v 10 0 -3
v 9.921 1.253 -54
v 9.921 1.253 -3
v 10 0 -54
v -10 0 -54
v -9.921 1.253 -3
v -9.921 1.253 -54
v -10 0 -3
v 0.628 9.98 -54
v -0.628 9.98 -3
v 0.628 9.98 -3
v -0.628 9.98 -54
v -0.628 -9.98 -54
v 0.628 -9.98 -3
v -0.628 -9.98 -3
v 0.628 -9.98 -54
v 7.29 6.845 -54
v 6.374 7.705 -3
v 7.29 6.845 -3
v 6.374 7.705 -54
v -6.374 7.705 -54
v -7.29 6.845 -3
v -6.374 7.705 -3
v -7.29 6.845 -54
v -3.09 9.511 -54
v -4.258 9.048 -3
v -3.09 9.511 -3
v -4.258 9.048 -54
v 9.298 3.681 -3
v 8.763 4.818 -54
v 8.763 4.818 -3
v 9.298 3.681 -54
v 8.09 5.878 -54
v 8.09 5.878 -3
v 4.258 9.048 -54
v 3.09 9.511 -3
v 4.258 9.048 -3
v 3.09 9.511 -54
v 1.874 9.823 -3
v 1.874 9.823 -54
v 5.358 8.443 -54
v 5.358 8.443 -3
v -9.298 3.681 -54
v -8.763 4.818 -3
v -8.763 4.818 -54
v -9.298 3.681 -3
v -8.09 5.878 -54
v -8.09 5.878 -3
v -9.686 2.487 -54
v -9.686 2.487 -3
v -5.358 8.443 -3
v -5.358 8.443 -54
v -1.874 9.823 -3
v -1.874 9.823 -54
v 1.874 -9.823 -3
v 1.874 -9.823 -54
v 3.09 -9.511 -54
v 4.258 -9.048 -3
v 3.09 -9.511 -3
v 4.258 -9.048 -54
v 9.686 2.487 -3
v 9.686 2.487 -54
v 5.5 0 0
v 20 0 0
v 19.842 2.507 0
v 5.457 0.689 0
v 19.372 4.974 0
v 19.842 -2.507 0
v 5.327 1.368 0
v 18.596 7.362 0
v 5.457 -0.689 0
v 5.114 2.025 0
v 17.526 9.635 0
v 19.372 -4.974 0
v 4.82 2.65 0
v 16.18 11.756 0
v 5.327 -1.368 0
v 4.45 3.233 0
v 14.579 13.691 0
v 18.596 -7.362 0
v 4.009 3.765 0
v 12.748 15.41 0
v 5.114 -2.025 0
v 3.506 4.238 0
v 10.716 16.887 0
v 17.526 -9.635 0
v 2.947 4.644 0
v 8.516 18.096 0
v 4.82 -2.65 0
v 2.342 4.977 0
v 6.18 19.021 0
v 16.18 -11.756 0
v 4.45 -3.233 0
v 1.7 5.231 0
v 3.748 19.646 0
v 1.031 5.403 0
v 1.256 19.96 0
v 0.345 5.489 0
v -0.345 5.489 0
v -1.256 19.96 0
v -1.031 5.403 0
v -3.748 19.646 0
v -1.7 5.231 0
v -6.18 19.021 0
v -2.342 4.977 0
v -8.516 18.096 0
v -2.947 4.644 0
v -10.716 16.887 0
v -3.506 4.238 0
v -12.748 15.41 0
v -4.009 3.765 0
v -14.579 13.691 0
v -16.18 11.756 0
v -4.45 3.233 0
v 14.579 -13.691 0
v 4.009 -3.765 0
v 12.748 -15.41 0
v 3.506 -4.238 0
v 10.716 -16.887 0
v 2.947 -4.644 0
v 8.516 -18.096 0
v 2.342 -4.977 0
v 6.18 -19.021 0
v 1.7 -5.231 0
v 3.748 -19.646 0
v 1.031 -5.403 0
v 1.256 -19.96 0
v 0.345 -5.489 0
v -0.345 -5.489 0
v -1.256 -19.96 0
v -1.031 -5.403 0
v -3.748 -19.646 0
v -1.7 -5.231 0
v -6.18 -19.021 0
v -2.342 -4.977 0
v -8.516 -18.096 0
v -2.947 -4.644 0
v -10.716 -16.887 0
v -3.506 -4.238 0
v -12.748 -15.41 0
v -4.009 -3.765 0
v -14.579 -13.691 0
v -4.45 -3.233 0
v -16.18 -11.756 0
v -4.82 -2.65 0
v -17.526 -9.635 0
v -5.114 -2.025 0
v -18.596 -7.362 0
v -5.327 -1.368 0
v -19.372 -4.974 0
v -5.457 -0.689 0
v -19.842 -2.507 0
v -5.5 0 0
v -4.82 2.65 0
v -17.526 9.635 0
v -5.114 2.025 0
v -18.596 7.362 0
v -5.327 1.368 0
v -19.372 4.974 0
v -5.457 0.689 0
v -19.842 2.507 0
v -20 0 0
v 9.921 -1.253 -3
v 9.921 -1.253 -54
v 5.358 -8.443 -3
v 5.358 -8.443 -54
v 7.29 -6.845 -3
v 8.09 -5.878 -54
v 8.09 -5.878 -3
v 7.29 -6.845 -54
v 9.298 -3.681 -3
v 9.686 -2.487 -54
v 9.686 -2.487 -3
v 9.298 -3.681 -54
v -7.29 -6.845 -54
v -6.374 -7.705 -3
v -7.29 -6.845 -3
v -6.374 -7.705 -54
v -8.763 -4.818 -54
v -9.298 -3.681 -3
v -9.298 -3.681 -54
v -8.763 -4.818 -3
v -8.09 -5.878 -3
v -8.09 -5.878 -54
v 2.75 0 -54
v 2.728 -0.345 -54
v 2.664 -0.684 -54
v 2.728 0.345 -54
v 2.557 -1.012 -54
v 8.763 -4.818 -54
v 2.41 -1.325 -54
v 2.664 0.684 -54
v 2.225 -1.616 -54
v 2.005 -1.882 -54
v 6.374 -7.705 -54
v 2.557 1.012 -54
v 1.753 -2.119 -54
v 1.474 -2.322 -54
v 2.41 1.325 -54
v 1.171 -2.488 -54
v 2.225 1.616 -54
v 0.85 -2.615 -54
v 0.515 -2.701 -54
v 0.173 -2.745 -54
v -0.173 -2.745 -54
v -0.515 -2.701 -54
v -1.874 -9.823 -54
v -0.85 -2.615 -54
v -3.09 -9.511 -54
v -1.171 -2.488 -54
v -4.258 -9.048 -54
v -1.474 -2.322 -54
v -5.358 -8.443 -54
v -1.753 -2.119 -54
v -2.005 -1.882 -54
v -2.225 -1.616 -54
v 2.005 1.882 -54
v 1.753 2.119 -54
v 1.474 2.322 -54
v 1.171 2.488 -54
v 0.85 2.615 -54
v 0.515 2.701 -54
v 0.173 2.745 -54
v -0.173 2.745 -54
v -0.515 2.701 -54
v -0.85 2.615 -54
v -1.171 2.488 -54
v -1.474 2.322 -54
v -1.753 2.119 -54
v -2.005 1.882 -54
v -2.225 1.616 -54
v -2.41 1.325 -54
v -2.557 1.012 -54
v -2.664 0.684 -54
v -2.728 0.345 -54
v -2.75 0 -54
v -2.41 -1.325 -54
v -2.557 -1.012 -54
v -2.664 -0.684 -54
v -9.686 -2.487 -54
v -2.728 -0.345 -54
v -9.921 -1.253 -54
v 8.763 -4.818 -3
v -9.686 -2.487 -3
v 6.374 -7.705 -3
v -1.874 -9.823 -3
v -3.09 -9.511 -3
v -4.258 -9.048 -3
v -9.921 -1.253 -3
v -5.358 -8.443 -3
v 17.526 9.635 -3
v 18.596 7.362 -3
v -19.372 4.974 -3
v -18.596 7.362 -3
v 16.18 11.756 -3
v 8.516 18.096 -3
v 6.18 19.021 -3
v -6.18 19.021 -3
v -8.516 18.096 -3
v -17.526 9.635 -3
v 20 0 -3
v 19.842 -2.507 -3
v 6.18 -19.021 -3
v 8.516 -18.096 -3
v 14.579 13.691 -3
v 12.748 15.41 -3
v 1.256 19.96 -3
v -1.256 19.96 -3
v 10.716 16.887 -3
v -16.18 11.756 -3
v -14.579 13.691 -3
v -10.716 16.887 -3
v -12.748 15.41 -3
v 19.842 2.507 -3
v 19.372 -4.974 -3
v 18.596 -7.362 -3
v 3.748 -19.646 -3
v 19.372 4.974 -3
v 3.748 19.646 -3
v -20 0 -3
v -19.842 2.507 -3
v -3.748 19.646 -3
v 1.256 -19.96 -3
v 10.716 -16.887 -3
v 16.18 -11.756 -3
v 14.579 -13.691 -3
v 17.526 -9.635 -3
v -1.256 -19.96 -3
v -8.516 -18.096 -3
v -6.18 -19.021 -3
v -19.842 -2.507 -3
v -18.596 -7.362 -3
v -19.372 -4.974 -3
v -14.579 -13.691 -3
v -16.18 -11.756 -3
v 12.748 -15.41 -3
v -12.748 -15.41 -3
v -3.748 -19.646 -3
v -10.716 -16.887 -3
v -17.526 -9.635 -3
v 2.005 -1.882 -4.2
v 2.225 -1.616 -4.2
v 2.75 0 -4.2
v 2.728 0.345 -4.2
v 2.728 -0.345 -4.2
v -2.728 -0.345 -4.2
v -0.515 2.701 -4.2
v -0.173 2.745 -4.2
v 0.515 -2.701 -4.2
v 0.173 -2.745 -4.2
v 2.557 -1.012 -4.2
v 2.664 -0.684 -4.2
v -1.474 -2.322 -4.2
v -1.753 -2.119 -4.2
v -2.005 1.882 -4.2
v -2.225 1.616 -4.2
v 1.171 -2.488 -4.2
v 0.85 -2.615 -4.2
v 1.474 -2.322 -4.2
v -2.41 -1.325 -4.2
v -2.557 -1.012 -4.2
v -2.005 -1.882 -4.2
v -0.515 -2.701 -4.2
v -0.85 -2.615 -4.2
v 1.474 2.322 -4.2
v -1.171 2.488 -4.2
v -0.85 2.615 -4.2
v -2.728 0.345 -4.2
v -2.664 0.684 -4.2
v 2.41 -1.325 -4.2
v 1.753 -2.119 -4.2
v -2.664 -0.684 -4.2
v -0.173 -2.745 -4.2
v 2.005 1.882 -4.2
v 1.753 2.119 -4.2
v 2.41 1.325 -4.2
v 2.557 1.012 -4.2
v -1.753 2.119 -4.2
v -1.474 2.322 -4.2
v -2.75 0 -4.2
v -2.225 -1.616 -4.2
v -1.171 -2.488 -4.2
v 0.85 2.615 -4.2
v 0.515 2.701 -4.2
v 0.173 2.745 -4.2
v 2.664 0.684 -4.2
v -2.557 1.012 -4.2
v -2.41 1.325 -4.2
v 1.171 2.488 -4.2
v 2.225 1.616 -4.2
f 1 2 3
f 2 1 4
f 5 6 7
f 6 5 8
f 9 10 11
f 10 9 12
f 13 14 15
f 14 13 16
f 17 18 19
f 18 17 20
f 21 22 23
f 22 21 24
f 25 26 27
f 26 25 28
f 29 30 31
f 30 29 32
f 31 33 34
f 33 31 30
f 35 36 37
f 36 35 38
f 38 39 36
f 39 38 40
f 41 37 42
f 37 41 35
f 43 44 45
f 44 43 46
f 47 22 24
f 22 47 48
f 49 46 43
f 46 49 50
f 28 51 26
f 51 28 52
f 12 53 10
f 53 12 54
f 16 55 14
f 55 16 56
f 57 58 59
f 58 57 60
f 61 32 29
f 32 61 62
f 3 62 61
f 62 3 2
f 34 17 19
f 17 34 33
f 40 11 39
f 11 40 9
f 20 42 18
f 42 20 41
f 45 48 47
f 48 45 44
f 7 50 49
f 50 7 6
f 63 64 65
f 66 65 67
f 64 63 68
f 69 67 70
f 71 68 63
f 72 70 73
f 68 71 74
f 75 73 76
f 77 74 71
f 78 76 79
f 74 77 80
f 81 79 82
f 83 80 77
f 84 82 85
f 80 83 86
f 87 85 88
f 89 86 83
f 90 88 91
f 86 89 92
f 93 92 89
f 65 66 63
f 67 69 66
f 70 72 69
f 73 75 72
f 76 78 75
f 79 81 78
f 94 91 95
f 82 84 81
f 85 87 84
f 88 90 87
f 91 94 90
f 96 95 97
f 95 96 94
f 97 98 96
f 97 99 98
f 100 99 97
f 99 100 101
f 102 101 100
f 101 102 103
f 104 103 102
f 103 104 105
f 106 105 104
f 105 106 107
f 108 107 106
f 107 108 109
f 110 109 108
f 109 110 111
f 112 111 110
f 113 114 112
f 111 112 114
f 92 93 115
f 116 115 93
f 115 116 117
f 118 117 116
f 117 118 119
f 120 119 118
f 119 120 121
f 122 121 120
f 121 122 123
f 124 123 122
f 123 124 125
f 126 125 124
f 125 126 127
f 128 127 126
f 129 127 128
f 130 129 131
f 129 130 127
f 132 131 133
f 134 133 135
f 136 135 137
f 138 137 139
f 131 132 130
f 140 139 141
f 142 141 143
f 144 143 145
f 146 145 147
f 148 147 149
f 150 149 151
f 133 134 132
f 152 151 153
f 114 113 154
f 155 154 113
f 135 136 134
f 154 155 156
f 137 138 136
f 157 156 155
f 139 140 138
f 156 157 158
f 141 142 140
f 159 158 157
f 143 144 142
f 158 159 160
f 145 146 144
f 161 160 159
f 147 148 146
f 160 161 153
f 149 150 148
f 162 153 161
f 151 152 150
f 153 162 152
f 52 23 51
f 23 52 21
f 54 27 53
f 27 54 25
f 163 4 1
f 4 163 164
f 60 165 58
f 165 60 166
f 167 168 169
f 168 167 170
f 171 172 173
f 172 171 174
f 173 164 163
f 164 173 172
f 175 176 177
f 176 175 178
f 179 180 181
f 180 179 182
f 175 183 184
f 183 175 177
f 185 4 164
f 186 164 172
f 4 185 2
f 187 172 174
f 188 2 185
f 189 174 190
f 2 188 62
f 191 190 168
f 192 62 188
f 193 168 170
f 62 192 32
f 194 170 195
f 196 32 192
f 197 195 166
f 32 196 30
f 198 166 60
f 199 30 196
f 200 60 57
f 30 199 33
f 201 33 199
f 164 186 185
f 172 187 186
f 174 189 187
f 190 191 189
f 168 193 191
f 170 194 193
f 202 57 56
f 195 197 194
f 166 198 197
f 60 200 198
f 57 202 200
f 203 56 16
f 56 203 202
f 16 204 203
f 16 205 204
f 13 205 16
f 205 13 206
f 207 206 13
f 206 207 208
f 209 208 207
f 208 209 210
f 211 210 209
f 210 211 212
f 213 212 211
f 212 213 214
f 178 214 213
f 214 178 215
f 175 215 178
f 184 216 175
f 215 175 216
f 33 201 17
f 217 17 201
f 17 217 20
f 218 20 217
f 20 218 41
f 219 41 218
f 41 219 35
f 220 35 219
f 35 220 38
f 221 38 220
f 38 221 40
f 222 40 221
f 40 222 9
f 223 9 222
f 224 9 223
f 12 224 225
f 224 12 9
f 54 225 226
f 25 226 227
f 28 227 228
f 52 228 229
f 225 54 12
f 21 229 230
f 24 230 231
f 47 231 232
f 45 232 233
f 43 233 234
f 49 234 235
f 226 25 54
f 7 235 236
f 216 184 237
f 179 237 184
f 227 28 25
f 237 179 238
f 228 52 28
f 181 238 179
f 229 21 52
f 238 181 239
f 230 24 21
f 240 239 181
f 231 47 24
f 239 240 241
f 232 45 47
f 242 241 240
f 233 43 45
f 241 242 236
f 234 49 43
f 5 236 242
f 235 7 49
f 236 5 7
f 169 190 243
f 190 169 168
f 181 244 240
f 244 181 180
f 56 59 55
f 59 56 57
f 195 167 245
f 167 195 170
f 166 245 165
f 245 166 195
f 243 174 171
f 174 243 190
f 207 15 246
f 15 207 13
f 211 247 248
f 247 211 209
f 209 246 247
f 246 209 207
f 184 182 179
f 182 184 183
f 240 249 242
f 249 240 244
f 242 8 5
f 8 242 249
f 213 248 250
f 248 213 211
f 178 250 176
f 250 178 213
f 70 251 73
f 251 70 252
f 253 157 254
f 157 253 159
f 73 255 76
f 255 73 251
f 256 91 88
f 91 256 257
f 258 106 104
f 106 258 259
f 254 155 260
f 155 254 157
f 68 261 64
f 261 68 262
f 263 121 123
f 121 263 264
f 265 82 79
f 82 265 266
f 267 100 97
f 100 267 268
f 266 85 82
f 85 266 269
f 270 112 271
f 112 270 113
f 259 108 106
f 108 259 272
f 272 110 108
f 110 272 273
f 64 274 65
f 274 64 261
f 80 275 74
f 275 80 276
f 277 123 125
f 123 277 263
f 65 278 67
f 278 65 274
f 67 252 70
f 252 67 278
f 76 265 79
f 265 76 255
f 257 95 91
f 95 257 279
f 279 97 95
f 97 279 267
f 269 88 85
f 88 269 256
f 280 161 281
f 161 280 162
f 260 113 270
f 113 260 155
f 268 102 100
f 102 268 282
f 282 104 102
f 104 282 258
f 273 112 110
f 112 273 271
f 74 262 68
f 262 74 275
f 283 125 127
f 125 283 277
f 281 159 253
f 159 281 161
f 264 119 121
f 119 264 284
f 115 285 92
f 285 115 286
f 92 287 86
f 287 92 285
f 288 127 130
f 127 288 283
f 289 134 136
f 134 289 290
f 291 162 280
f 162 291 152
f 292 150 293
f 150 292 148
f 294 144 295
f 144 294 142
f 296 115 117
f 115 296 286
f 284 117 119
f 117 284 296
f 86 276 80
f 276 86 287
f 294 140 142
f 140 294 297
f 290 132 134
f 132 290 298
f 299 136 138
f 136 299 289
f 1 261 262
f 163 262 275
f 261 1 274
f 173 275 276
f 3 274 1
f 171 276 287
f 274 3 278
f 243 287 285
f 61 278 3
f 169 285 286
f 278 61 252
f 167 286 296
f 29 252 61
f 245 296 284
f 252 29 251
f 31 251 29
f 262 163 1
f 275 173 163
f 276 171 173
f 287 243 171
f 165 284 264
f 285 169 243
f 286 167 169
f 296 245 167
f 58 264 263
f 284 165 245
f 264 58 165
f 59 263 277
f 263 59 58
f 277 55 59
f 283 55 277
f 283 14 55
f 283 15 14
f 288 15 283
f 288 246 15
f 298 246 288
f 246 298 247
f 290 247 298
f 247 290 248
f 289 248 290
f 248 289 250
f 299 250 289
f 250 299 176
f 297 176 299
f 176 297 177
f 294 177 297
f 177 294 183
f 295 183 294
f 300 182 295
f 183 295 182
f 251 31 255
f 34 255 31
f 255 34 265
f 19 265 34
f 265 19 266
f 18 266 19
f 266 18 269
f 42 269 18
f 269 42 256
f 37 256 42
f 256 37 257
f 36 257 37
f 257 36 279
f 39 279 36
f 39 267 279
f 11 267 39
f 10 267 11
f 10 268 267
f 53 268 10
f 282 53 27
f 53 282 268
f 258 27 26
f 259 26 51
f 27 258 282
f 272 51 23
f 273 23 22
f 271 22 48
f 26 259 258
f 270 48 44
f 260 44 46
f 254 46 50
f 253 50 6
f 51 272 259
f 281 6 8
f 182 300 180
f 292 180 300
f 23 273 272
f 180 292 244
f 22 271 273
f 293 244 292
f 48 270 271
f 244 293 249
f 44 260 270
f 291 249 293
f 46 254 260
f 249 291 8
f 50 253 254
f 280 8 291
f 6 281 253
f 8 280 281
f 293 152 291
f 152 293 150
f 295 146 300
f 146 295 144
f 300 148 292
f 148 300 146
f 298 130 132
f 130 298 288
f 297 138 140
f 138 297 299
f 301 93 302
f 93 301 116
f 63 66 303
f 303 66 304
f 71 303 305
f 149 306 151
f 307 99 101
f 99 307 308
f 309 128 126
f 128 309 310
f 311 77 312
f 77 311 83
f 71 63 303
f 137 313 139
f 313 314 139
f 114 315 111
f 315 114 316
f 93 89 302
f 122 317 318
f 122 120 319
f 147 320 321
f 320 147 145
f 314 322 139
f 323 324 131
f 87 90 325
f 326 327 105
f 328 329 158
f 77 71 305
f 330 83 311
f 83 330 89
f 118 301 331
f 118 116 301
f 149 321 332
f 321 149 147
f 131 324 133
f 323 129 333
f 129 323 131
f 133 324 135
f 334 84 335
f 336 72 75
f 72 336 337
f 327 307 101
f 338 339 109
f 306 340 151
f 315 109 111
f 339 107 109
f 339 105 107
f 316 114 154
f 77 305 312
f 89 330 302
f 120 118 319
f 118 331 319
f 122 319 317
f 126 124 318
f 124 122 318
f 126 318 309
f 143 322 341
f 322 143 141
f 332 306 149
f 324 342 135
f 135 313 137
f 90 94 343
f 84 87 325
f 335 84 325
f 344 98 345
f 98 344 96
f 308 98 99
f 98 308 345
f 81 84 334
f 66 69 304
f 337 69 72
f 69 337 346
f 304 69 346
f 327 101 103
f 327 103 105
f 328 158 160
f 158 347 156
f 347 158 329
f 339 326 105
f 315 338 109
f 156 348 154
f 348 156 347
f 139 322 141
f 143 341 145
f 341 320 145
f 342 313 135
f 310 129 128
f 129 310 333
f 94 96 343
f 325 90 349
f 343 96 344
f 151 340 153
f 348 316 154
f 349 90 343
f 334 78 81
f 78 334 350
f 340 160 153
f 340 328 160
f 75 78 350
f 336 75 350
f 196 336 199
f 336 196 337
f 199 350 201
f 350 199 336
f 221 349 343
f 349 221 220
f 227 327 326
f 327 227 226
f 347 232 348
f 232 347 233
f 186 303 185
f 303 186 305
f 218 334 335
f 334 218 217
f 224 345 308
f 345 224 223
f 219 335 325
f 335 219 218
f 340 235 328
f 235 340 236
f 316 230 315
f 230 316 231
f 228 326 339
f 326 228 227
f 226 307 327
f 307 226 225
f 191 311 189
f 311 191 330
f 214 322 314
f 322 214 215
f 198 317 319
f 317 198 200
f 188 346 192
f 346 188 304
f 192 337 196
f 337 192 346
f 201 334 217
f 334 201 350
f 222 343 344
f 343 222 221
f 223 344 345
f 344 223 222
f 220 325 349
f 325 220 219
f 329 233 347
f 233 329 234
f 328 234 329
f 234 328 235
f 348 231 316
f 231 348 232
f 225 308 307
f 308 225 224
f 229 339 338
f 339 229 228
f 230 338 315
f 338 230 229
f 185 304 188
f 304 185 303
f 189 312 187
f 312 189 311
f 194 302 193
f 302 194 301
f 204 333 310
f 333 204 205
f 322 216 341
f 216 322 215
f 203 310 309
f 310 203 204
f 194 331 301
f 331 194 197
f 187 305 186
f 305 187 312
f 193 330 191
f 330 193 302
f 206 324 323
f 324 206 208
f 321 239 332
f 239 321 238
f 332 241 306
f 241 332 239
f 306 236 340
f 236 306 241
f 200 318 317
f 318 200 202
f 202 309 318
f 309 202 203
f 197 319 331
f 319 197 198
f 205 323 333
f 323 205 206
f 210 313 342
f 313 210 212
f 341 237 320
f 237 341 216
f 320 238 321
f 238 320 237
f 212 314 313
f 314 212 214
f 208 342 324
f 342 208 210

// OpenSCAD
$fn = 50;


difference() {
	union() {
		translate(v = [0, 0, -54.0000000000]) {
			cylinder(h = 54, r = 10.0000000000);
		}
		translate(v = [0, 0, -3.0000000000]) {
			cylinder(h = 3, r = 20.0000000000);
		}
	}
	union() {
		translate(v = [0, 0, 0]) {
			rotate(a = [0, 0, 0]) {
				difference() {
					union() {
						#translate(v = [0, 0, -54.0000000000]) {
							cylinder(h = 54, r = 2.2500000000);
						}
						#translate(v = [0, 0, -4.2000000000]) {
							cylinder(h = 4.2000000000, r1 = 2.7500000000, r2 = 5.5000000000);
						}
						#translate(v = [0, 0, -54.0000000000]) {
							cylinder(h = 54, r = 2.7500000000);
						}
						#translate(v = [0, 0, -54.0000000000]) {
							cylinder(h = 54, r = 2.2500000000);
						}
					}
					union();
				}
			}
		}
	}
}
